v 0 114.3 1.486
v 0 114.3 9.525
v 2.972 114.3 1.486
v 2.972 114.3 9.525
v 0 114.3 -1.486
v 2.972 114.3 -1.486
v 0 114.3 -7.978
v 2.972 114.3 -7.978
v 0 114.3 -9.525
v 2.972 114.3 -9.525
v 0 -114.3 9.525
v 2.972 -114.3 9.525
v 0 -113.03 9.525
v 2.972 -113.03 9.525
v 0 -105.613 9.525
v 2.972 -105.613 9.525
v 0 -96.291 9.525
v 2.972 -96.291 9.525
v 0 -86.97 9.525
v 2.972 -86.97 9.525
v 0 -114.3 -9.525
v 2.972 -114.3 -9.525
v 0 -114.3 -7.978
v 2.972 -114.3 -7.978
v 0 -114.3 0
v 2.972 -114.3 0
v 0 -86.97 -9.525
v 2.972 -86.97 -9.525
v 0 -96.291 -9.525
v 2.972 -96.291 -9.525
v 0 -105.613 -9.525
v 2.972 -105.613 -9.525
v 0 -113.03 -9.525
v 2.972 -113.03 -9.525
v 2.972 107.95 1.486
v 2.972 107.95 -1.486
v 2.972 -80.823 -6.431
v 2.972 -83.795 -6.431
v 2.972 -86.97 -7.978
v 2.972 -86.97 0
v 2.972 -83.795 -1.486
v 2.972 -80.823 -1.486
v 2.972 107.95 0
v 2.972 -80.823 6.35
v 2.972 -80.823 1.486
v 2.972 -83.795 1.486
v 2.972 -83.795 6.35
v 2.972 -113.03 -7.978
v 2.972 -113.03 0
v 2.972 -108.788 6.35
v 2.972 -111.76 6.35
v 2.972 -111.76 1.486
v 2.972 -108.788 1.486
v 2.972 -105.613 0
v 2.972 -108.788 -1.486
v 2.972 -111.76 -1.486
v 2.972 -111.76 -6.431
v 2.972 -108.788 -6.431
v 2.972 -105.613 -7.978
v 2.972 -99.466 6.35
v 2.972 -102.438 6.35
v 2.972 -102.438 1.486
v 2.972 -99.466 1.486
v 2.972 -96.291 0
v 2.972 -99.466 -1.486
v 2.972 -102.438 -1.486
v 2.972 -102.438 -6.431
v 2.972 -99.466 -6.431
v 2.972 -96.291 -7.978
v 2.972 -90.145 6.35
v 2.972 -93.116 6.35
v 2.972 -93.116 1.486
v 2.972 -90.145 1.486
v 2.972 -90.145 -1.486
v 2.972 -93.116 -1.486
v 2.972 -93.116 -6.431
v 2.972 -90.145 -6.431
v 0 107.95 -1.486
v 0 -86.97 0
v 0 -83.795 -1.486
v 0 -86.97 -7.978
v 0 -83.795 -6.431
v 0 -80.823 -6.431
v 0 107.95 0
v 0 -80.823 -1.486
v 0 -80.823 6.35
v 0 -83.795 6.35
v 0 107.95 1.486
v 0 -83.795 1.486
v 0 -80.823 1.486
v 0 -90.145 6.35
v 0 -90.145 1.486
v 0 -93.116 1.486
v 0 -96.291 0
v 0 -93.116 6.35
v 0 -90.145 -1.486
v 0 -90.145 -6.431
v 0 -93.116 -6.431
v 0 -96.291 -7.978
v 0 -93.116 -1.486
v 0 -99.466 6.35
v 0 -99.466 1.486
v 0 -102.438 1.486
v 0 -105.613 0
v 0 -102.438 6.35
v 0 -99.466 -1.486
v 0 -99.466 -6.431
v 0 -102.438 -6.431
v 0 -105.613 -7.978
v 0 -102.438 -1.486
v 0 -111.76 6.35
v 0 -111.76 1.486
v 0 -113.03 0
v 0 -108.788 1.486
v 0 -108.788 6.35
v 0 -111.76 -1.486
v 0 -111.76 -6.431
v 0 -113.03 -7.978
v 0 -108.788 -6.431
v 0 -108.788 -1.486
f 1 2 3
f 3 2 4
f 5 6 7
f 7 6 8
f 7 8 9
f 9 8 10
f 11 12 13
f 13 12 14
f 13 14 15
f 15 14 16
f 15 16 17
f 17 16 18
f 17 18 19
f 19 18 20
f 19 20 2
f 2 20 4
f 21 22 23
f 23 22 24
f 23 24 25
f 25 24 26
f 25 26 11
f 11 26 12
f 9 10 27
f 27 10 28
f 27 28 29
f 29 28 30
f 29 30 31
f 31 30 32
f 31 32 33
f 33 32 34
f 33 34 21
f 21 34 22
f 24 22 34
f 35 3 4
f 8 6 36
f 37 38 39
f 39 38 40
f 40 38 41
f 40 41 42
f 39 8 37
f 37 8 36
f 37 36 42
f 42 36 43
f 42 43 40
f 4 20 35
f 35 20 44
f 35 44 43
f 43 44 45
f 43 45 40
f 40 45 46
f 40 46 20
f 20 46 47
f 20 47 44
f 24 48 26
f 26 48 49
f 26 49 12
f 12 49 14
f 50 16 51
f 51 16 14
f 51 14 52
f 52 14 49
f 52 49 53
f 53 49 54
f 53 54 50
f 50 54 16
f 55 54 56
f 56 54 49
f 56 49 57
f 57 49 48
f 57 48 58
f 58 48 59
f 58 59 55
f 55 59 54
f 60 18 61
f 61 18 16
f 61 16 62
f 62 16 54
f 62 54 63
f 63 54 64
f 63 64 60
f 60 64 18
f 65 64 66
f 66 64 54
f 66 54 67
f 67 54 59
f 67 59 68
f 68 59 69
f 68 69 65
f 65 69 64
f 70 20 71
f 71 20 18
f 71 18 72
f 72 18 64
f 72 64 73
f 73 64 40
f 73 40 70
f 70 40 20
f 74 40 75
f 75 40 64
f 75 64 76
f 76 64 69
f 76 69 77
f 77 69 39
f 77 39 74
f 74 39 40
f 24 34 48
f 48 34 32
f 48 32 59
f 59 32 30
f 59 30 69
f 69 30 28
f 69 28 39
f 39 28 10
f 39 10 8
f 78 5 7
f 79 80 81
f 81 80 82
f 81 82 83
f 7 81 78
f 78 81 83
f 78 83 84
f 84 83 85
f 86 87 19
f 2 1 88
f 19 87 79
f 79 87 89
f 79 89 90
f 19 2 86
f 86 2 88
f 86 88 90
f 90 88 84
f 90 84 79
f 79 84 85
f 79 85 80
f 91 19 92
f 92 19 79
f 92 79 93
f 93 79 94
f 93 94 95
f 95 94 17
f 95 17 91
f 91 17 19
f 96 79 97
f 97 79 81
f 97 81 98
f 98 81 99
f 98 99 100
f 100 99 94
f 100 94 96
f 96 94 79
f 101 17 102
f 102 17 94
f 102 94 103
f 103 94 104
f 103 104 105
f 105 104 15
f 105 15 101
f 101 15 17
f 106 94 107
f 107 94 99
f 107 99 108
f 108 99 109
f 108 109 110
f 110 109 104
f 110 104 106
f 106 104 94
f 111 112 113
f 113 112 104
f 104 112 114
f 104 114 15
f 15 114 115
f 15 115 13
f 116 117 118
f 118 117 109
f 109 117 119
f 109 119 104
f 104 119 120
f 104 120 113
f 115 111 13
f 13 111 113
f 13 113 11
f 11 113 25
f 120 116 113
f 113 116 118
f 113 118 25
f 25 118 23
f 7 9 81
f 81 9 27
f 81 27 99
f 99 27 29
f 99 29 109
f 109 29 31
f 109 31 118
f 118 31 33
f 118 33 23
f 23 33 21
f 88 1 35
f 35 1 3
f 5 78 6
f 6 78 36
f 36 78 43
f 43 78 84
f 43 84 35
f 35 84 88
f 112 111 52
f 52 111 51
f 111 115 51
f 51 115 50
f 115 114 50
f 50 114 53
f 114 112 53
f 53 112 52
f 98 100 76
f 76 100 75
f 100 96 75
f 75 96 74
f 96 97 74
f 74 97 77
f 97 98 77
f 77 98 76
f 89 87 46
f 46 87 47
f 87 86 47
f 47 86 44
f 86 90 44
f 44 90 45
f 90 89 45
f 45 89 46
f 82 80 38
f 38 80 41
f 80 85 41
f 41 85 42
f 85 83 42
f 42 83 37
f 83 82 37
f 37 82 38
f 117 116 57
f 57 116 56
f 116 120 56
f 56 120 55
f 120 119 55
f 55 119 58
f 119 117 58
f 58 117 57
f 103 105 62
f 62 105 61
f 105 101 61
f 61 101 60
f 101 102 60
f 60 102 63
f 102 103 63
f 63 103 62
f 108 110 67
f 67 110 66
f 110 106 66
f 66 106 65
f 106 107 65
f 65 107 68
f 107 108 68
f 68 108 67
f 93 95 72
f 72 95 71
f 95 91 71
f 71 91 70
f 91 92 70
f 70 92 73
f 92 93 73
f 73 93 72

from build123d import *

# Parameters (mm, degrees)
SKETCH1_W           = 228.6
SKETCH1_H           = 19.05
BOSS_EXTRUDE1_DEPTH = 2.9718
SKETCH3_W           = 6.35
SKETCH3_H           = 2.9718
CUT_EXTRUDE1_DEPTH  = 115.734681854
SKETCH4_W           = 2.9718
SKETCH4_H           = 4.8641
SKETCH4_H_2         = 4.944612775
CUT_EXTRUDE2_DEPTH  = 115.734681854


with BuildPart() as part:
    # Sketch1 → Boss-Extrude1 (new body)
    with BuildSketch(Plane.YZ):
        Rectangle(SKETCH1_W, SKETCH1_H)
    extrude(amount=BOSS_EXTRUDE1_DEPTH)

    # Sketch3 → Cut-Extrude1 (cut, through all)
    with BuildSketch(Plane.YZ.offset(2.9718)):
        with Locations((111.125, 0)):
            Rectangle(SKETCH3_W, SKETCH3_H)
    extrude(amount=-CUT_EXTRUDE1_DEPTH, mode=Mode.SUBTRACT)

    # Sketch4 → Cut-Extrude2 (cut, through all)
    with BuildSketch(Plane.YZ.offset(2.9718)):
        with Locations((-100.9523, 3.91795)):
            Rectangle(SKETCH4_W, SKETCH4_H)
        with Locations((-110.2741, 3.91795)):
            Rectangle(SKETCH4_W, SKETCH4_H)
        with Locations((-110.2741, -3.958206388)):
            Rectangle(SKETCH4_W, SKETCH4_H_2)
        with Locations((-100.9523, -3.958206388)):
            Rectangle(SKETCH4_W, SKETCH4_H_2)
        with Locations((-91.6305, 3.91795)):
            Rectangle(SKETCH4_W, SKETCH4_H)
        with Locations((-91.6305, -3.958206388)):
            Rectangle(SKETCH4_W, SKETCH4_H_2)
        with Locations((-82.3087, 3.91795)):
            Rectangle(SKETCH4_W, SKETCH4_H)
        with Locations((-82.3087, -3.958206388)):
            Rectangle(SKETCH4_W, SKETCH4_H_2)
    extrude(amount=-CUT_EXTRUDE2_DEPTH, mode=Mode.SUBTRACT)


solid = part.part
